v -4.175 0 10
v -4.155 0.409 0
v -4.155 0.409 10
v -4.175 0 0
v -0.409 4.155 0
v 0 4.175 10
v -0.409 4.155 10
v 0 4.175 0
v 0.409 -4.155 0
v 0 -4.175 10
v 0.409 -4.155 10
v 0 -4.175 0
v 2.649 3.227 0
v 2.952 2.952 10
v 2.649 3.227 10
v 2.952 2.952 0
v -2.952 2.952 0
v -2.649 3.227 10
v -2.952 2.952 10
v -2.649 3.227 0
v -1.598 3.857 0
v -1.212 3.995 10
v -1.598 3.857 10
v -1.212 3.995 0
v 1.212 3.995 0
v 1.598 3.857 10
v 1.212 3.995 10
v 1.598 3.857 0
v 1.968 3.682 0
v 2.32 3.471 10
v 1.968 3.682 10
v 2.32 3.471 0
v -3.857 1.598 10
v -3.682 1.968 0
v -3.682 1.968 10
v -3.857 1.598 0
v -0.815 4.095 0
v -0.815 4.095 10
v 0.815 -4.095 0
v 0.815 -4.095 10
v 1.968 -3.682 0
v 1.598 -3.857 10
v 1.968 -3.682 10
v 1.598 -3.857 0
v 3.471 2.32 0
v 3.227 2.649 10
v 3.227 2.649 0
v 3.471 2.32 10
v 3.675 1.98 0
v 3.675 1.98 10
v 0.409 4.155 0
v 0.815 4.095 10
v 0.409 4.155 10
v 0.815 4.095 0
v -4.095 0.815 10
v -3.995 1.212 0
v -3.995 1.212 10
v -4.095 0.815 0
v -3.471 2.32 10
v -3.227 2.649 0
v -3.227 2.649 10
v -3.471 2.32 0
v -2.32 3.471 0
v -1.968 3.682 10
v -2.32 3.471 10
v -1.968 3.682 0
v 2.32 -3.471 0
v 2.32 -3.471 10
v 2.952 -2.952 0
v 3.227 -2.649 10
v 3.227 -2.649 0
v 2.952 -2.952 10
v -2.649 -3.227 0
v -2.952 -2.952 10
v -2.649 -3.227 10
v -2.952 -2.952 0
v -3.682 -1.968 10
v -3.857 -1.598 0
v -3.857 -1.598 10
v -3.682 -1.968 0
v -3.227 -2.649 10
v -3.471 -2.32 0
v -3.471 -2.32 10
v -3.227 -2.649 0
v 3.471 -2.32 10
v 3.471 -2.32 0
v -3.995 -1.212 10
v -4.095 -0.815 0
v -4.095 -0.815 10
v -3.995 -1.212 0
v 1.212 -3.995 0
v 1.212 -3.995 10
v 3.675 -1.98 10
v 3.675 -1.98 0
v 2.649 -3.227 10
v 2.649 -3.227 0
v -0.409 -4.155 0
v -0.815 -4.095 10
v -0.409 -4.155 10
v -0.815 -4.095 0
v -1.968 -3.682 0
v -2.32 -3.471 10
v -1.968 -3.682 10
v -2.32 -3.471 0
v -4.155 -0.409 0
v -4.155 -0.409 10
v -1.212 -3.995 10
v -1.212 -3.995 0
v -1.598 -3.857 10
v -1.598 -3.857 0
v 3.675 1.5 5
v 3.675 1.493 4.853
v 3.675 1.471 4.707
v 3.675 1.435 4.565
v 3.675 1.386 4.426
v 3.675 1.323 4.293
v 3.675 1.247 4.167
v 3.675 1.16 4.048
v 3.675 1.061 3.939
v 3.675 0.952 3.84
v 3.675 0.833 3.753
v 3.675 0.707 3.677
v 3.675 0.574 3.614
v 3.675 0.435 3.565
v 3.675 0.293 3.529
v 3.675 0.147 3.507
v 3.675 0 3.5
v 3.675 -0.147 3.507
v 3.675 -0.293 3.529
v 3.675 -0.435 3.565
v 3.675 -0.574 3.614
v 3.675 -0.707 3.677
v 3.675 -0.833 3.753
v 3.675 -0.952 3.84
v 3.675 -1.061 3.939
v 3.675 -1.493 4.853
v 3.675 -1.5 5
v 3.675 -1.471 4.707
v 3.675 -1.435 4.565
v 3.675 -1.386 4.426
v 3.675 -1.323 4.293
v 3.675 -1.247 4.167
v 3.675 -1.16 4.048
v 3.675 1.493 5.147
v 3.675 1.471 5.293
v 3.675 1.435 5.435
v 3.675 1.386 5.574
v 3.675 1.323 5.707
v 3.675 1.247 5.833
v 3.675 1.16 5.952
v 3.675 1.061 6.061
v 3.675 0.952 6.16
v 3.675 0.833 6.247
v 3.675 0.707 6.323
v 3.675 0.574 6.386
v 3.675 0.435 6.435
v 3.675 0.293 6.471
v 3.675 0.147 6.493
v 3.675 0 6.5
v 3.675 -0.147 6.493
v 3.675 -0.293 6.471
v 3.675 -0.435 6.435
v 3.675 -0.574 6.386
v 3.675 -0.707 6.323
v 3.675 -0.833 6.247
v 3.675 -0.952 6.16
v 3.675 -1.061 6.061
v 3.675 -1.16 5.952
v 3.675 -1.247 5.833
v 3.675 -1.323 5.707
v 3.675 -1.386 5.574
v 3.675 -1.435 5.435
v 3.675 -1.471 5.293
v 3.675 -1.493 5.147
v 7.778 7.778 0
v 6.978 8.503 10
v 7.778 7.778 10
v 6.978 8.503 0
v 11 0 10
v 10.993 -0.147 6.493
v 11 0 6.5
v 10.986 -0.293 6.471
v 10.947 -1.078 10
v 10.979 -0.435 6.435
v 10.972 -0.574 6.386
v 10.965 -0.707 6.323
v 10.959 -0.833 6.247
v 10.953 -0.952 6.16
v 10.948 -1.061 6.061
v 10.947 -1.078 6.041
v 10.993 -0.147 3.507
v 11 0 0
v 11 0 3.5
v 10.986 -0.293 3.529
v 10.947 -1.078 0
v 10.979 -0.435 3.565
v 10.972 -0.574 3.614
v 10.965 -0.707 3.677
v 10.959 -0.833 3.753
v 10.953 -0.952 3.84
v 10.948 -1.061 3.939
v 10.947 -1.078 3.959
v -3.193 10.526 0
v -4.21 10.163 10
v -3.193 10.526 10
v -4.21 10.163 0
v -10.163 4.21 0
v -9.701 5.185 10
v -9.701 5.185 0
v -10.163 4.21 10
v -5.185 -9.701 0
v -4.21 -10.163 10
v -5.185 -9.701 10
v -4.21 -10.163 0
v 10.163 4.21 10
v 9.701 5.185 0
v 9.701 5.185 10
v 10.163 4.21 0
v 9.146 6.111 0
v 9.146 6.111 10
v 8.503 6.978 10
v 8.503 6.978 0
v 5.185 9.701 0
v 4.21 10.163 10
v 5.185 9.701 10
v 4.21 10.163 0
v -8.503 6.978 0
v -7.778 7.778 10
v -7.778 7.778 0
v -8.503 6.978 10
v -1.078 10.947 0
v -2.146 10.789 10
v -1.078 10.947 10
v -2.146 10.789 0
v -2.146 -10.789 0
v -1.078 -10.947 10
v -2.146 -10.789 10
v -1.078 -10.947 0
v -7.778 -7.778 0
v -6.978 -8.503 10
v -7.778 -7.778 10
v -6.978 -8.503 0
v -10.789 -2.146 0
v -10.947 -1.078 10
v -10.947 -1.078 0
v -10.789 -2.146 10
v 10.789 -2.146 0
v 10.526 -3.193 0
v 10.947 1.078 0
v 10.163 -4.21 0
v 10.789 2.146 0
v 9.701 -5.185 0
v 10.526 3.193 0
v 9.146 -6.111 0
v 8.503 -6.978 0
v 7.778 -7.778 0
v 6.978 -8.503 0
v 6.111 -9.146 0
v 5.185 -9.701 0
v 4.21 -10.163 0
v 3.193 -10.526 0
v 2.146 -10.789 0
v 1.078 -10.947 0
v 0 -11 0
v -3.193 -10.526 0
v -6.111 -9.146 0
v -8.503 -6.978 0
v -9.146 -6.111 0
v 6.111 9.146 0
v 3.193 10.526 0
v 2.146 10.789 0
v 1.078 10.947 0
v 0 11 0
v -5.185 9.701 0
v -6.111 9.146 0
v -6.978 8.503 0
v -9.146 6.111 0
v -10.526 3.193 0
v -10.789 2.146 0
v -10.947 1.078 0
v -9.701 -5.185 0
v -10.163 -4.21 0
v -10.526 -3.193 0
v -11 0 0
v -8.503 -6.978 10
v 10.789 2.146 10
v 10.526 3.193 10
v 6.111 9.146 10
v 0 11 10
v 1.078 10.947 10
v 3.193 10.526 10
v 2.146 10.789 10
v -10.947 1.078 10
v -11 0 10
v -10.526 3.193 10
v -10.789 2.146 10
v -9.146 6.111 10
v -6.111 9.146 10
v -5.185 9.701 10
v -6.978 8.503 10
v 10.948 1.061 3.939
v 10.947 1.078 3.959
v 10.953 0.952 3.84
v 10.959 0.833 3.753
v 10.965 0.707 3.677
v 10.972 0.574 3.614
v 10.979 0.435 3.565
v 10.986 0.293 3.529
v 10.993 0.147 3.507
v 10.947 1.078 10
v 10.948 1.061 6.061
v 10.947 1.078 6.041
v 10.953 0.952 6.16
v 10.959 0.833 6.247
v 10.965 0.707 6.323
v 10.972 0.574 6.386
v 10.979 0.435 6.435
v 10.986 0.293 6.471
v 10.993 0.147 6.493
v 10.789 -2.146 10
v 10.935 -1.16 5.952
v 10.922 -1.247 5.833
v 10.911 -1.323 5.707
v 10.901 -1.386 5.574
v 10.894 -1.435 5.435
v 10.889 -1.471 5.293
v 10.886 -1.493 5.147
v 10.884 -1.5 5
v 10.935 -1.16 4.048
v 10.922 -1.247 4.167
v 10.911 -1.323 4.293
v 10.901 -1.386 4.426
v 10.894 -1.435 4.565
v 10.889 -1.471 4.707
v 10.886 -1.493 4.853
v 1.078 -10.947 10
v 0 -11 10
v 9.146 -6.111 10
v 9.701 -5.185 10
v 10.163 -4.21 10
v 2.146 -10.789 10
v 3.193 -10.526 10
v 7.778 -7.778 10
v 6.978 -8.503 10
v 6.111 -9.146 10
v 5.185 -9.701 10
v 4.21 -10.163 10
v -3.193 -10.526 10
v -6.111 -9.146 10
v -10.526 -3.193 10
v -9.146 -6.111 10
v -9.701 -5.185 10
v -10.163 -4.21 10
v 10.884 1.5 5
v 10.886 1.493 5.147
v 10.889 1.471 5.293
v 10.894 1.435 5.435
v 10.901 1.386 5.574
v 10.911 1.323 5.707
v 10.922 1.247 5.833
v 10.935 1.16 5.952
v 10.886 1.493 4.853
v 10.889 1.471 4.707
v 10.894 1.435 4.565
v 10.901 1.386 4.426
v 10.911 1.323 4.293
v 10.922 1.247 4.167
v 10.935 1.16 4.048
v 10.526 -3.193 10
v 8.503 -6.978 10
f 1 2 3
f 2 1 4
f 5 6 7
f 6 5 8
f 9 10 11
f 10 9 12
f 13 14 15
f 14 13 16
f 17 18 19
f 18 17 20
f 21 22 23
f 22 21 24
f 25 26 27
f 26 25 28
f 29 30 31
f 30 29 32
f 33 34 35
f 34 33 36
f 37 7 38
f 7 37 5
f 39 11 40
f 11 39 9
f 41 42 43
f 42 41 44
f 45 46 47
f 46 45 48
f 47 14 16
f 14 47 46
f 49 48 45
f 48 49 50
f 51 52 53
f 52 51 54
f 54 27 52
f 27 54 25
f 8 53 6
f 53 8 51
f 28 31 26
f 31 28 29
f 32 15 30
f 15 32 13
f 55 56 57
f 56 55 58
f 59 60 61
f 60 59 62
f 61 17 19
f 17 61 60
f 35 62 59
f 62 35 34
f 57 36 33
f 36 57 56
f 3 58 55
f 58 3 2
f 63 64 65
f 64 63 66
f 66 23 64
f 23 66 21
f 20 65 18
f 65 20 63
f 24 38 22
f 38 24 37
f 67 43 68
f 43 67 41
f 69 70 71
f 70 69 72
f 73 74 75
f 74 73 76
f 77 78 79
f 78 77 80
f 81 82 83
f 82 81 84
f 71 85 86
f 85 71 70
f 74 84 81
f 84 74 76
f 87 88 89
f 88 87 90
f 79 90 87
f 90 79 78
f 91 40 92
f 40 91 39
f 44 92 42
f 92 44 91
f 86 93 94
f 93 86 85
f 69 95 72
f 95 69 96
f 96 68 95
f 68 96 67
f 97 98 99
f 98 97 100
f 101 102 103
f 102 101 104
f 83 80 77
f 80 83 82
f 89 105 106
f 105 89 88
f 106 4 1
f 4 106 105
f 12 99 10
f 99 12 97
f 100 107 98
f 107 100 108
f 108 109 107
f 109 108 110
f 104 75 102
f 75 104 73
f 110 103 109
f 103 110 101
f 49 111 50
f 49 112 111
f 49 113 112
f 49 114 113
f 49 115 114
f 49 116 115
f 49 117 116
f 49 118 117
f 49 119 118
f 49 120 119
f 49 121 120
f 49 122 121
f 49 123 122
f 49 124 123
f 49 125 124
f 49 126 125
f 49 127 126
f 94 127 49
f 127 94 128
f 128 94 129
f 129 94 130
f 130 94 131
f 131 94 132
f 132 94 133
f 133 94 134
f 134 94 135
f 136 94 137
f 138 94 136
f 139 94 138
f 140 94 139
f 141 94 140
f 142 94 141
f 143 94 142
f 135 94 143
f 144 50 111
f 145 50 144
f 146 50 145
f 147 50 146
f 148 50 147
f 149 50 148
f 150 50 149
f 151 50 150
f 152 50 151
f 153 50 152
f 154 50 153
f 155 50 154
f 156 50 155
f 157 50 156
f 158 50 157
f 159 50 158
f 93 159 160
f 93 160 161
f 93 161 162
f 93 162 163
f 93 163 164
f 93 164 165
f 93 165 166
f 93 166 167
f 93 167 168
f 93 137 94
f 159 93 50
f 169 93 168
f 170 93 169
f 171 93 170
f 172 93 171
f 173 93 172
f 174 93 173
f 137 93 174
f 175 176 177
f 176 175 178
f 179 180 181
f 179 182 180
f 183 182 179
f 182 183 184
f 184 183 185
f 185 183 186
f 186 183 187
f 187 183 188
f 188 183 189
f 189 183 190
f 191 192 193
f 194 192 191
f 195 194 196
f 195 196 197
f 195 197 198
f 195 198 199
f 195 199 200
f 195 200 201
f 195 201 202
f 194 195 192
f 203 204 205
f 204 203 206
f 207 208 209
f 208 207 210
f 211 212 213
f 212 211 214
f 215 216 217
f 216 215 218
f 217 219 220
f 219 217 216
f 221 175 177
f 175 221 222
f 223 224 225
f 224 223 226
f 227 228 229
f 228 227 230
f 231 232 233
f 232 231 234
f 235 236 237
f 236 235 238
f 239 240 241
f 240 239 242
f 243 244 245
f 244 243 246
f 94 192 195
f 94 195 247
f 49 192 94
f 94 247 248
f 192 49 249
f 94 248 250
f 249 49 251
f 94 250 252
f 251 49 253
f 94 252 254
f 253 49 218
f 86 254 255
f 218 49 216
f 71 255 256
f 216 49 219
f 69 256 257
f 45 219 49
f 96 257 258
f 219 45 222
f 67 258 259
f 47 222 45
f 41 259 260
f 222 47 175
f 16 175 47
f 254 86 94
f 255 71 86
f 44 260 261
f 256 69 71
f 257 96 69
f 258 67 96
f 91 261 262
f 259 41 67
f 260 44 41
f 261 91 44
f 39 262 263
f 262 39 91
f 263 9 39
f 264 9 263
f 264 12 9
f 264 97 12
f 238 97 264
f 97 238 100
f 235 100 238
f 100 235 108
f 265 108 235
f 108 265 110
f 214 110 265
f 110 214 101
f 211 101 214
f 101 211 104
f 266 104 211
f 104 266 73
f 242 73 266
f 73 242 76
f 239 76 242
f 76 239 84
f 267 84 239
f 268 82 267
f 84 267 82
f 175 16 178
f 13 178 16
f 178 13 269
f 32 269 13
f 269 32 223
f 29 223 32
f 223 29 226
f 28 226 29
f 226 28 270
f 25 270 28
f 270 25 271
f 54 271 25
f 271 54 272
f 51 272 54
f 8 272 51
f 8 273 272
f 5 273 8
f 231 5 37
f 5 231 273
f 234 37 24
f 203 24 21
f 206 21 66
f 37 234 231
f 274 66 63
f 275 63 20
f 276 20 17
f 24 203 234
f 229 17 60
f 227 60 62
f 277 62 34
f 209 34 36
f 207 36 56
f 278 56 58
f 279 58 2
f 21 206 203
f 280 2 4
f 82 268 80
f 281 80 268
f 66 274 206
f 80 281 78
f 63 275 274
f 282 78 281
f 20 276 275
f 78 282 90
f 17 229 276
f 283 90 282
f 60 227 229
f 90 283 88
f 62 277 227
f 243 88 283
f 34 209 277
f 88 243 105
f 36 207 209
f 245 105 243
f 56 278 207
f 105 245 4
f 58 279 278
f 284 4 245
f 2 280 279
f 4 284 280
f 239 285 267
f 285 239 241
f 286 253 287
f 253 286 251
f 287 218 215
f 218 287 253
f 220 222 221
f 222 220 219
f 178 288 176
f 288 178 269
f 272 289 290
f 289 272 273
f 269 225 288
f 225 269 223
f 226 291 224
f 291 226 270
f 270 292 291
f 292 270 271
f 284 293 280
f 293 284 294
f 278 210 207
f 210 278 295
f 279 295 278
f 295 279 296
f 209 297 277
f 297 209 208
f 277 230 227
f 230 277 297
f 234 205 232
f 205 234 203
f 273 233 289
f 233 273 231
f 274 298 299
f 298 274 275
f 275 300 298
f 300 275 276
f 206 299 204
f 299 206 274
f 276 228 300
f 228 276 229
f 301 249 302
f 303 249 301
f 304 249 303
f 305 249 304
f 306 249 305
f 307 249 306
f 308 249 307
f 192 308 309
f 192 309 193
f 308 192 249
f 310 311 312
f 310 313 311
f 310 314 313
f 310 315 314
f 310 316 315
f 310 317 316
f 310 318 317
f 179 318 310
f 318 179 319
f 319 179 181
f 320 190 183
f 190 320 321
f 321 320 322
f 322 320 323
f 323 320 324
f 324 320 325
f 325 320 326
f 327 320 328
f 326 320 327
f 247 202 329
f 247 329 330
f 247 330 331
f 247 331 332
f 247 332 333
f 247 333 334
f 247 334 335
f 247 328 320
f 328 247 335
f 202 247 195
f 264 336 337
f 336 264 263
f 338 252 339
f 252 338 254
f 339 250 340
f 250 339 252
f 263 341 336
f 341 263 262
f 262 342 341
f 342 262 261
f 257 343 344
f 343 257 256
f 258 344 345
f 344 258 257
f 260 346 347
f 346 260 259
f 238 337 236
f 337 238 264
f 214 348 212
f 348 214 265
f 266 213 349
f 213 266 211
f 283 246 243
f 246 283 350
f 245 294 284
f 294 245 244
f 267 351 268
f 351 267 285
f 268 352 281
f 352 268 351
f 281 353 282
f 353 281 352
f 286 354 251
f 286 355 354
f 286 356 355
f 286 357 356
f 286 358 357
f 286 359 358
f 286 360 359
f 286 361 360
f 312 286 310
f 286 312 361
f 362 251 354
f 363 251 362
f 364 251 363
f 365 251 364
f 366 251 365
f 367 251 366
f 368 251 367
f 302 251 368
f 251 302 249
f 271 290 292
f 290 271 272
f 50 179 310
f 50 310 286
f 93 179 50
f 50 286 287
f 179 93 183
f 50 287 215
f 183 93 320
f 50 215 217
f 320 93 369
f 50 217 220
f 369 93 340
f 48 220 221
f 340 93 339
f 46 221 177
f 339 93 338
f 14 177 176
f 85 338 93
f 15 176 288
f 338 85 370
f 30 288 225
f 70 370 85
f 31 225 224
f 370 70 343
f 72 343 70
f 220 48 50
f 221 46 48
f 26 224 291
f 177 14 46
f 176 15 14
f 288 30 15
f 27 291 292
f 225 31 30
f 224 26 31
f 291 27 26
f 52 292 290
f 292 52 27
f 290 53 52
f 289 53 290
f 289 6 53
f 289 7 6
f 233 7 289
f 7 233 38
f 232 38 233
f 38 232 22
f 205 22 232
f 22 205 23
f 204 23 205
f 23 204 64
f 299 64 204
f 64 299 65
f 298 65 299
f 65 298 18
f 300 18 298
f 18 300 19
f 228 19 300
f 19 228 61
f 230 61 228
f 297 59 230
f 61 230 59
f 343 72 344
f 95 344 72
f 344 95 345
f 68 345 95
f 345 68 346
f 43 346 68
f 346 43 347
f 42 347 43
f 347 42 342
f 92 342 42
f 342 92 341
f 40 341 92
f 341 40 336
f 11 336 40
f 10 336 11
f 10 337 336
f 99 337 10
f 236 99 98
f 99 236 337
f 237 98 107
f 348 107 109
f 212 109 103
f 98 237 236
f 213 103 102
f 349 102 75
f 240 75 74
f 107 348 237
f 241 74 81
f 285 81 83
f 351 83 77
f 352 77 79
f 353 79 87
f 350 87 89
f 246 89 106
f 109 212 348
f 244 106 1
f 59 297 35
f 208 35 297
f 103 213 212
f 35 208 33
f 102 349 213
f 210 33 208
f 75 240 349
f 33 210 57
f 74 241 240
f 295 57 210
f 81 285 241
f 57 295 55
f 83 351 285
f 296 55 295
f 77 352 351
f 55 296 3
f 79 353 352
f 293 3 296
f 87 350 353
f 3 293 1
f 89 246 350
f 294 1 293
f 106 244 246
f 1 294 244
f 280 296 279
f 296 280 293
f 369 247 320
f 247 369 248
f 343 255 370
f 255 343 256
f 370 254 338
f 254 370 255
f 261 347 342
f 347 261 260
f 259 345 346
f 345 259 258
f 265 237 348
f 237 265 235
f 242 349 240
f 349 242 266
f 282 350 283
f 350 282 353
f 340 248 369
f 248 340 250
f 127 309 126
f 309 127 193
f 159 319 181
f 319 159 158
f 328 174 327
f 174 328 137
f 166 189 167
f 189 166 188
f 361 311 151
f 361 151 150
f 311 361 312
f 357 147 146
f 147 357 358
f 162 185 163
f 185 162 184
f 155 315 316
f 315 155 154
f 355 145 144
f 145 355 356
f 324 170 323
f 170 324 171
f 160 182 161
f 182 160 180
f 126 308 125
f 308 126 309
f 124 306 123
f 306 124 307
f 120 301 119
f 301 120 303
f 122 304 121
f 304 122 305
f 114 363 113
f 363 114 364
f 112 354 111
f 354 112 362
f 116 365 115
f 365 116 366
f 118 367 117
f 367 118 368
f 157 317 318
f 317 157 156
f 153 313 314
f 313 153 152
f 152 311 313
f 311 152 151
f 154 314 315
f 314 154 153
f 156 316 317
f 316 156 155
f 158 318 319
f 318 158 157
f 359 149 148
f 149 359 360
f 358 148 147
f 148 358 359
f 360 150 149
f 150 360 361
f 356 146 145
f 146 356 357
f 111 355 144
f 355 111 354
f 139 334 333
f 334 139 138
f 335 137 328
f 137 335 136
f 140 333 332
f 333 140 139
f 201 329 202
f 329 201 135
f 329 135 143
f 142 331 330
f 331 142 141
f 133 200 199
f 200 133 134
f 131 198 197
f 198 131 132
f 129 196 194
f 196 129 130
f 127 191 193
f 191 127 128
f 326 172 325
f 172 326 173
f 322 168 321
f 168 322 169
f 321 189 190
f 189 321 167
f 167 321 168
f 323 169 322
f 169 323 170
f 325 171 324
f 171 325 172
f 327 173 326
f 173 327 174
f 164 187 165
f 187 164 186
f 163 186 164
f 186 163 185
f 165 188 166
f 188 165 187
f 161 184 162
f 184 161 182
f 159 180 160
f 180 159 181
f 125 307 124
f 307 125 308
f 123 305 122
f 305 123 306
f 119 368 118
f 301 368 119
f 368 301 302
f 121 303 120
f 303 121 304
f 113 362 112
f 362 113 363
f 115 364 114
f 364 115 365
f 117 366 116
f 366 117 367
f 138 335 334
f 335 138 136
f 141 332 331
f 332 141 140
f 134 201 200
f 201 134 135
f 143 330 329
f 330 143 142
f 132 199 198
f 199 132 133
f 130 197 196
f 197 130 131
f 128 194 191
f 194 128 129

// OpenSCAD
// file: parameters.scad
// =============================================================================
// Gen-BQ — nightly 2026-10-07 (physics_scorer, honest magpylib watts)
// Smooth-torque 8-pole / 9-coil line (winding factor 0.945, much lower cogging than 6-coil) with tonight's gap levers: flush 5.00 mm through-pocket seat, 0.8 mm bobbin lip (wider 35–70 mm sectors) and a ±8 mm Ø5 map at R44/52/60, on the Gen-BN Ø138 × 4.76 mm steel. Improves Gen-BN 4.166 W but 9 coils still lose to 6 coils under the wire budget.
// Clocking 0 deg (magnets N facing S) + D-flat keyed bore + index notch + flip-symmetric hole map.
// Windable 2-piece bobbin; turns = physics_scorer turns_fit; copper only between flanges.
// Steel back-iron: 2× Ø138 × 4.76 mm (3/16") mild-steel discs (steel_backiron_disc.dxf); magnets sit ON the steel
// (through-pockets) -> score with --back-iron.
// =============================================================================
topology            = "dual_rotor";

// --- Wire / winding (physics_scorer winding-fit) -------------------------------
wire_awg            = 26;
wire_od             = 0.45;     // insulated OD mm (bare 0.405)
fill_realistic      = 0.65;     // insulated-wire area / window (DENSE layered wind with a jig; scorer cap 0.65)
turns               = 486;       // = physics_scorer turns_fit (do NOT raise)
coil_former_type    = "bobbin";
coil_core_inset     = 12.60;     // radial copper build: hub = copper boundary inset by this
wind_build_axial    = 0.0;      // nothing proud of the flanges
wind_build_radial   = 0.0;

// --- Bobbin (base + lid) ---------------------------------------------------------
coil_id_r           = 35.00;    // copper boundary sector
coil_od_r           = 70.00;
span_deg            = 34.6;    // = pitch - 2*asin((wall+0.85)/coil_id_r) -> >=1.2 mm stator web
former_web          = 9.45;     // copper height between flanges (TALL copper: steel keeps Bz up)
flange_t            = 0.80;     // >= 0.8 mm FDM wall rule (tall winds push on the flanges)
wall                = 0.80;     // flange lip beyond copper
former_bare_h       = former_web + 2 * flange_t;
coil_envelope_h     = former_bare_h + 2 * wind_build_axial;
tab_w               = 7.0;
tab_len             = 7.0;
tab_h               = former_bare_h / 2;
pin_d               = 1.9;      // 1.75 mm filament locating pin
coil_mount_r        = coil_od_r + 0.2 + 4.0;
lead_y              = 1.6;
lead_slot_w         = 0.9;
lead_groove_d       = 0.6;

// --- Gap -------------------------------------------------------------------------
run_clear           = 0.50;     // rotor face -> flange
gap_spacer_h        = run_clear + wind_build_axial;
m2m                 = coil_envelope_h + 2 * run_clear;   // rotor face to rotor face (= gap_sleeve length)

// --- Stator ----------------------------------------------------------------------
coil_stations       = 9;
bay_clear           = 0.25;
stator_thick        = former_bare_h;                        // bobbins flush both faces
stator_od           = 160.0;
shaft_clear_stator  = 14.0;     // stator is static; gap sleeve OD 12 spins inside

// --- Rotor(s) --------------------------------------------------------------------
magnet_Br           = 1.43;     // N52
magnet_d_large      = 20.0;
magnet_h_large      = 5.0;      // one O20x5 per pocket
magnet_h_small      = 5.0;      // one O5x5 per pocket
halbach_magnetisation = "diametric"; // O5x5 assist magnets MUST be DIAMETRICALLY magnetised (tangential)
rotor_b_same_axis   = true;     // same-index magnets share one axis: N faces S across the gap
large_pocket_d      = 20.3;
small_pocket_d      = 5.3;
pocket_h            = 5.00;     // THROUGH the carrier: magnet back face sits on the steel disc (FLUSH seat: carrier = magnet height, magnet face level with the rotor face)
large_n             = 8;
R_large             = 52.0;
R_small_inner       = 44.0;
R_small_mid         = 52.0;
R_small_outer       = 60.0;
small_r_list        = [R_small_inner, R_small_mid, R_small_outer];   // O5 pockets between poles
carrier_od          = 138.0;
carrier_thick       = pocket_h;
hub_h               = 12.0;     // > steel_t + insert: radial set-screw clears the steel
hub_od              = 24.0;     // slim hub so the M4 brace rods fit at R~18 inside the coil ring
hub_insert_d        = 4.0;      // M3 heat-set insert, radial, bears on the D-flat
rotor_b_offset_deg  = 0.0;      // CLOCKING: magnets directly opposite
shaft_key           = "dflat";
dflat_depth         = 0.5;      // 8 mm shaft with 0.5 mm flat (7.5 across flat)
index_notch_d       = 3.0;

// --- Steel back-iron (buyable laser-cut) -------------------------------------------
steel_t             = 4.76;      // mild steel thickness (image method ignores it; sized from steel_flux.py so the return path stays well below saturation)
steel_center_hole   = 26.0;     // slips over the rotor hub (OD 24)
steel_od            = carrier_od;   // steel disc OD = rotor carrier OD

// --- Modular MAX interface ----------------------------------------------------------
shaft_bore          = 8.35;
dflat_x             = 4.0 - dflat_depth + (shaft_bore - 8.0) / 2;
bearing_d           = 21.85;
bearing_h           = 7.2;
m3_clear            = 3.5;
bolt_r_inner        = 30.0;     // M3 steel-disc clamp bolts (inside the magnet ring)
bolt_n_inner        = 4;
bolt_inner_angles   = [0, 90, 180, 270];
bolt_r_outer        = 65.0;     // M3 steel-disc clamp bolts (outside the magnet ring)
bolt_outer_angles   = [45, 135, 225, 315];
flange_bolt_r       = 75.0;     // frame rods: OUTSIDE the rotor OD (rotors spin inside them)
flange_bolt_n       = 9;
flange_bolt_offset  = 20.00;    // between coil stations -> never cuts a lead groove/tab
brace_r             = 18.0;
brace_d             = 4.3;      // temporary M4 jack rods (assembly only)
brace_n             = 4;
brace_angles        = [45, 135, 225, 315];          // flip-symmetric

spacer_pad_od       = 14.0;
spacer_pad_id       = m3_clear;
endbell_od          = 160.0;
endbell_thick       = 8.0;
endbell_shaft_clear = 10.0;
collar_h            = 10.0;
standoff_od         = 9.0;
frame_standoff_h    = run_clear + carrier_thick + hub_h + collar_h + 2.0;
sleeve_od           = 12.0;
plate_max_mm        = 410;

$fn = 64;
// main file
// Gen-BQ — shaft collar with D-flat bore (set screw bears on the flat); print x4
include <parameters.scad>;
$fn = 64;
// D-flat keyed bore: flat faces +X (angle 0 = magnet pocket 0 = index notch)
module dflat_bore(h) {
    intersection() {
        cylinder(d=shaft_bore, h=h);
        translate([-shaft_bore, -shaft_bore, 0]) cube([shaft_bore + dflat_x, 2*shaft_bore, h]);
    }
}

od = 22; h = collar_h; set_d = 3.0;
difference() {
    cylinder(d=od, h=h);
    translate([0, 0, -0.1]) dflat_bore(h + 0.2);
    translate([0, 0, h/2]) rotate([0, 90, 0]) cylinder(d=set_d, h=od);
}
